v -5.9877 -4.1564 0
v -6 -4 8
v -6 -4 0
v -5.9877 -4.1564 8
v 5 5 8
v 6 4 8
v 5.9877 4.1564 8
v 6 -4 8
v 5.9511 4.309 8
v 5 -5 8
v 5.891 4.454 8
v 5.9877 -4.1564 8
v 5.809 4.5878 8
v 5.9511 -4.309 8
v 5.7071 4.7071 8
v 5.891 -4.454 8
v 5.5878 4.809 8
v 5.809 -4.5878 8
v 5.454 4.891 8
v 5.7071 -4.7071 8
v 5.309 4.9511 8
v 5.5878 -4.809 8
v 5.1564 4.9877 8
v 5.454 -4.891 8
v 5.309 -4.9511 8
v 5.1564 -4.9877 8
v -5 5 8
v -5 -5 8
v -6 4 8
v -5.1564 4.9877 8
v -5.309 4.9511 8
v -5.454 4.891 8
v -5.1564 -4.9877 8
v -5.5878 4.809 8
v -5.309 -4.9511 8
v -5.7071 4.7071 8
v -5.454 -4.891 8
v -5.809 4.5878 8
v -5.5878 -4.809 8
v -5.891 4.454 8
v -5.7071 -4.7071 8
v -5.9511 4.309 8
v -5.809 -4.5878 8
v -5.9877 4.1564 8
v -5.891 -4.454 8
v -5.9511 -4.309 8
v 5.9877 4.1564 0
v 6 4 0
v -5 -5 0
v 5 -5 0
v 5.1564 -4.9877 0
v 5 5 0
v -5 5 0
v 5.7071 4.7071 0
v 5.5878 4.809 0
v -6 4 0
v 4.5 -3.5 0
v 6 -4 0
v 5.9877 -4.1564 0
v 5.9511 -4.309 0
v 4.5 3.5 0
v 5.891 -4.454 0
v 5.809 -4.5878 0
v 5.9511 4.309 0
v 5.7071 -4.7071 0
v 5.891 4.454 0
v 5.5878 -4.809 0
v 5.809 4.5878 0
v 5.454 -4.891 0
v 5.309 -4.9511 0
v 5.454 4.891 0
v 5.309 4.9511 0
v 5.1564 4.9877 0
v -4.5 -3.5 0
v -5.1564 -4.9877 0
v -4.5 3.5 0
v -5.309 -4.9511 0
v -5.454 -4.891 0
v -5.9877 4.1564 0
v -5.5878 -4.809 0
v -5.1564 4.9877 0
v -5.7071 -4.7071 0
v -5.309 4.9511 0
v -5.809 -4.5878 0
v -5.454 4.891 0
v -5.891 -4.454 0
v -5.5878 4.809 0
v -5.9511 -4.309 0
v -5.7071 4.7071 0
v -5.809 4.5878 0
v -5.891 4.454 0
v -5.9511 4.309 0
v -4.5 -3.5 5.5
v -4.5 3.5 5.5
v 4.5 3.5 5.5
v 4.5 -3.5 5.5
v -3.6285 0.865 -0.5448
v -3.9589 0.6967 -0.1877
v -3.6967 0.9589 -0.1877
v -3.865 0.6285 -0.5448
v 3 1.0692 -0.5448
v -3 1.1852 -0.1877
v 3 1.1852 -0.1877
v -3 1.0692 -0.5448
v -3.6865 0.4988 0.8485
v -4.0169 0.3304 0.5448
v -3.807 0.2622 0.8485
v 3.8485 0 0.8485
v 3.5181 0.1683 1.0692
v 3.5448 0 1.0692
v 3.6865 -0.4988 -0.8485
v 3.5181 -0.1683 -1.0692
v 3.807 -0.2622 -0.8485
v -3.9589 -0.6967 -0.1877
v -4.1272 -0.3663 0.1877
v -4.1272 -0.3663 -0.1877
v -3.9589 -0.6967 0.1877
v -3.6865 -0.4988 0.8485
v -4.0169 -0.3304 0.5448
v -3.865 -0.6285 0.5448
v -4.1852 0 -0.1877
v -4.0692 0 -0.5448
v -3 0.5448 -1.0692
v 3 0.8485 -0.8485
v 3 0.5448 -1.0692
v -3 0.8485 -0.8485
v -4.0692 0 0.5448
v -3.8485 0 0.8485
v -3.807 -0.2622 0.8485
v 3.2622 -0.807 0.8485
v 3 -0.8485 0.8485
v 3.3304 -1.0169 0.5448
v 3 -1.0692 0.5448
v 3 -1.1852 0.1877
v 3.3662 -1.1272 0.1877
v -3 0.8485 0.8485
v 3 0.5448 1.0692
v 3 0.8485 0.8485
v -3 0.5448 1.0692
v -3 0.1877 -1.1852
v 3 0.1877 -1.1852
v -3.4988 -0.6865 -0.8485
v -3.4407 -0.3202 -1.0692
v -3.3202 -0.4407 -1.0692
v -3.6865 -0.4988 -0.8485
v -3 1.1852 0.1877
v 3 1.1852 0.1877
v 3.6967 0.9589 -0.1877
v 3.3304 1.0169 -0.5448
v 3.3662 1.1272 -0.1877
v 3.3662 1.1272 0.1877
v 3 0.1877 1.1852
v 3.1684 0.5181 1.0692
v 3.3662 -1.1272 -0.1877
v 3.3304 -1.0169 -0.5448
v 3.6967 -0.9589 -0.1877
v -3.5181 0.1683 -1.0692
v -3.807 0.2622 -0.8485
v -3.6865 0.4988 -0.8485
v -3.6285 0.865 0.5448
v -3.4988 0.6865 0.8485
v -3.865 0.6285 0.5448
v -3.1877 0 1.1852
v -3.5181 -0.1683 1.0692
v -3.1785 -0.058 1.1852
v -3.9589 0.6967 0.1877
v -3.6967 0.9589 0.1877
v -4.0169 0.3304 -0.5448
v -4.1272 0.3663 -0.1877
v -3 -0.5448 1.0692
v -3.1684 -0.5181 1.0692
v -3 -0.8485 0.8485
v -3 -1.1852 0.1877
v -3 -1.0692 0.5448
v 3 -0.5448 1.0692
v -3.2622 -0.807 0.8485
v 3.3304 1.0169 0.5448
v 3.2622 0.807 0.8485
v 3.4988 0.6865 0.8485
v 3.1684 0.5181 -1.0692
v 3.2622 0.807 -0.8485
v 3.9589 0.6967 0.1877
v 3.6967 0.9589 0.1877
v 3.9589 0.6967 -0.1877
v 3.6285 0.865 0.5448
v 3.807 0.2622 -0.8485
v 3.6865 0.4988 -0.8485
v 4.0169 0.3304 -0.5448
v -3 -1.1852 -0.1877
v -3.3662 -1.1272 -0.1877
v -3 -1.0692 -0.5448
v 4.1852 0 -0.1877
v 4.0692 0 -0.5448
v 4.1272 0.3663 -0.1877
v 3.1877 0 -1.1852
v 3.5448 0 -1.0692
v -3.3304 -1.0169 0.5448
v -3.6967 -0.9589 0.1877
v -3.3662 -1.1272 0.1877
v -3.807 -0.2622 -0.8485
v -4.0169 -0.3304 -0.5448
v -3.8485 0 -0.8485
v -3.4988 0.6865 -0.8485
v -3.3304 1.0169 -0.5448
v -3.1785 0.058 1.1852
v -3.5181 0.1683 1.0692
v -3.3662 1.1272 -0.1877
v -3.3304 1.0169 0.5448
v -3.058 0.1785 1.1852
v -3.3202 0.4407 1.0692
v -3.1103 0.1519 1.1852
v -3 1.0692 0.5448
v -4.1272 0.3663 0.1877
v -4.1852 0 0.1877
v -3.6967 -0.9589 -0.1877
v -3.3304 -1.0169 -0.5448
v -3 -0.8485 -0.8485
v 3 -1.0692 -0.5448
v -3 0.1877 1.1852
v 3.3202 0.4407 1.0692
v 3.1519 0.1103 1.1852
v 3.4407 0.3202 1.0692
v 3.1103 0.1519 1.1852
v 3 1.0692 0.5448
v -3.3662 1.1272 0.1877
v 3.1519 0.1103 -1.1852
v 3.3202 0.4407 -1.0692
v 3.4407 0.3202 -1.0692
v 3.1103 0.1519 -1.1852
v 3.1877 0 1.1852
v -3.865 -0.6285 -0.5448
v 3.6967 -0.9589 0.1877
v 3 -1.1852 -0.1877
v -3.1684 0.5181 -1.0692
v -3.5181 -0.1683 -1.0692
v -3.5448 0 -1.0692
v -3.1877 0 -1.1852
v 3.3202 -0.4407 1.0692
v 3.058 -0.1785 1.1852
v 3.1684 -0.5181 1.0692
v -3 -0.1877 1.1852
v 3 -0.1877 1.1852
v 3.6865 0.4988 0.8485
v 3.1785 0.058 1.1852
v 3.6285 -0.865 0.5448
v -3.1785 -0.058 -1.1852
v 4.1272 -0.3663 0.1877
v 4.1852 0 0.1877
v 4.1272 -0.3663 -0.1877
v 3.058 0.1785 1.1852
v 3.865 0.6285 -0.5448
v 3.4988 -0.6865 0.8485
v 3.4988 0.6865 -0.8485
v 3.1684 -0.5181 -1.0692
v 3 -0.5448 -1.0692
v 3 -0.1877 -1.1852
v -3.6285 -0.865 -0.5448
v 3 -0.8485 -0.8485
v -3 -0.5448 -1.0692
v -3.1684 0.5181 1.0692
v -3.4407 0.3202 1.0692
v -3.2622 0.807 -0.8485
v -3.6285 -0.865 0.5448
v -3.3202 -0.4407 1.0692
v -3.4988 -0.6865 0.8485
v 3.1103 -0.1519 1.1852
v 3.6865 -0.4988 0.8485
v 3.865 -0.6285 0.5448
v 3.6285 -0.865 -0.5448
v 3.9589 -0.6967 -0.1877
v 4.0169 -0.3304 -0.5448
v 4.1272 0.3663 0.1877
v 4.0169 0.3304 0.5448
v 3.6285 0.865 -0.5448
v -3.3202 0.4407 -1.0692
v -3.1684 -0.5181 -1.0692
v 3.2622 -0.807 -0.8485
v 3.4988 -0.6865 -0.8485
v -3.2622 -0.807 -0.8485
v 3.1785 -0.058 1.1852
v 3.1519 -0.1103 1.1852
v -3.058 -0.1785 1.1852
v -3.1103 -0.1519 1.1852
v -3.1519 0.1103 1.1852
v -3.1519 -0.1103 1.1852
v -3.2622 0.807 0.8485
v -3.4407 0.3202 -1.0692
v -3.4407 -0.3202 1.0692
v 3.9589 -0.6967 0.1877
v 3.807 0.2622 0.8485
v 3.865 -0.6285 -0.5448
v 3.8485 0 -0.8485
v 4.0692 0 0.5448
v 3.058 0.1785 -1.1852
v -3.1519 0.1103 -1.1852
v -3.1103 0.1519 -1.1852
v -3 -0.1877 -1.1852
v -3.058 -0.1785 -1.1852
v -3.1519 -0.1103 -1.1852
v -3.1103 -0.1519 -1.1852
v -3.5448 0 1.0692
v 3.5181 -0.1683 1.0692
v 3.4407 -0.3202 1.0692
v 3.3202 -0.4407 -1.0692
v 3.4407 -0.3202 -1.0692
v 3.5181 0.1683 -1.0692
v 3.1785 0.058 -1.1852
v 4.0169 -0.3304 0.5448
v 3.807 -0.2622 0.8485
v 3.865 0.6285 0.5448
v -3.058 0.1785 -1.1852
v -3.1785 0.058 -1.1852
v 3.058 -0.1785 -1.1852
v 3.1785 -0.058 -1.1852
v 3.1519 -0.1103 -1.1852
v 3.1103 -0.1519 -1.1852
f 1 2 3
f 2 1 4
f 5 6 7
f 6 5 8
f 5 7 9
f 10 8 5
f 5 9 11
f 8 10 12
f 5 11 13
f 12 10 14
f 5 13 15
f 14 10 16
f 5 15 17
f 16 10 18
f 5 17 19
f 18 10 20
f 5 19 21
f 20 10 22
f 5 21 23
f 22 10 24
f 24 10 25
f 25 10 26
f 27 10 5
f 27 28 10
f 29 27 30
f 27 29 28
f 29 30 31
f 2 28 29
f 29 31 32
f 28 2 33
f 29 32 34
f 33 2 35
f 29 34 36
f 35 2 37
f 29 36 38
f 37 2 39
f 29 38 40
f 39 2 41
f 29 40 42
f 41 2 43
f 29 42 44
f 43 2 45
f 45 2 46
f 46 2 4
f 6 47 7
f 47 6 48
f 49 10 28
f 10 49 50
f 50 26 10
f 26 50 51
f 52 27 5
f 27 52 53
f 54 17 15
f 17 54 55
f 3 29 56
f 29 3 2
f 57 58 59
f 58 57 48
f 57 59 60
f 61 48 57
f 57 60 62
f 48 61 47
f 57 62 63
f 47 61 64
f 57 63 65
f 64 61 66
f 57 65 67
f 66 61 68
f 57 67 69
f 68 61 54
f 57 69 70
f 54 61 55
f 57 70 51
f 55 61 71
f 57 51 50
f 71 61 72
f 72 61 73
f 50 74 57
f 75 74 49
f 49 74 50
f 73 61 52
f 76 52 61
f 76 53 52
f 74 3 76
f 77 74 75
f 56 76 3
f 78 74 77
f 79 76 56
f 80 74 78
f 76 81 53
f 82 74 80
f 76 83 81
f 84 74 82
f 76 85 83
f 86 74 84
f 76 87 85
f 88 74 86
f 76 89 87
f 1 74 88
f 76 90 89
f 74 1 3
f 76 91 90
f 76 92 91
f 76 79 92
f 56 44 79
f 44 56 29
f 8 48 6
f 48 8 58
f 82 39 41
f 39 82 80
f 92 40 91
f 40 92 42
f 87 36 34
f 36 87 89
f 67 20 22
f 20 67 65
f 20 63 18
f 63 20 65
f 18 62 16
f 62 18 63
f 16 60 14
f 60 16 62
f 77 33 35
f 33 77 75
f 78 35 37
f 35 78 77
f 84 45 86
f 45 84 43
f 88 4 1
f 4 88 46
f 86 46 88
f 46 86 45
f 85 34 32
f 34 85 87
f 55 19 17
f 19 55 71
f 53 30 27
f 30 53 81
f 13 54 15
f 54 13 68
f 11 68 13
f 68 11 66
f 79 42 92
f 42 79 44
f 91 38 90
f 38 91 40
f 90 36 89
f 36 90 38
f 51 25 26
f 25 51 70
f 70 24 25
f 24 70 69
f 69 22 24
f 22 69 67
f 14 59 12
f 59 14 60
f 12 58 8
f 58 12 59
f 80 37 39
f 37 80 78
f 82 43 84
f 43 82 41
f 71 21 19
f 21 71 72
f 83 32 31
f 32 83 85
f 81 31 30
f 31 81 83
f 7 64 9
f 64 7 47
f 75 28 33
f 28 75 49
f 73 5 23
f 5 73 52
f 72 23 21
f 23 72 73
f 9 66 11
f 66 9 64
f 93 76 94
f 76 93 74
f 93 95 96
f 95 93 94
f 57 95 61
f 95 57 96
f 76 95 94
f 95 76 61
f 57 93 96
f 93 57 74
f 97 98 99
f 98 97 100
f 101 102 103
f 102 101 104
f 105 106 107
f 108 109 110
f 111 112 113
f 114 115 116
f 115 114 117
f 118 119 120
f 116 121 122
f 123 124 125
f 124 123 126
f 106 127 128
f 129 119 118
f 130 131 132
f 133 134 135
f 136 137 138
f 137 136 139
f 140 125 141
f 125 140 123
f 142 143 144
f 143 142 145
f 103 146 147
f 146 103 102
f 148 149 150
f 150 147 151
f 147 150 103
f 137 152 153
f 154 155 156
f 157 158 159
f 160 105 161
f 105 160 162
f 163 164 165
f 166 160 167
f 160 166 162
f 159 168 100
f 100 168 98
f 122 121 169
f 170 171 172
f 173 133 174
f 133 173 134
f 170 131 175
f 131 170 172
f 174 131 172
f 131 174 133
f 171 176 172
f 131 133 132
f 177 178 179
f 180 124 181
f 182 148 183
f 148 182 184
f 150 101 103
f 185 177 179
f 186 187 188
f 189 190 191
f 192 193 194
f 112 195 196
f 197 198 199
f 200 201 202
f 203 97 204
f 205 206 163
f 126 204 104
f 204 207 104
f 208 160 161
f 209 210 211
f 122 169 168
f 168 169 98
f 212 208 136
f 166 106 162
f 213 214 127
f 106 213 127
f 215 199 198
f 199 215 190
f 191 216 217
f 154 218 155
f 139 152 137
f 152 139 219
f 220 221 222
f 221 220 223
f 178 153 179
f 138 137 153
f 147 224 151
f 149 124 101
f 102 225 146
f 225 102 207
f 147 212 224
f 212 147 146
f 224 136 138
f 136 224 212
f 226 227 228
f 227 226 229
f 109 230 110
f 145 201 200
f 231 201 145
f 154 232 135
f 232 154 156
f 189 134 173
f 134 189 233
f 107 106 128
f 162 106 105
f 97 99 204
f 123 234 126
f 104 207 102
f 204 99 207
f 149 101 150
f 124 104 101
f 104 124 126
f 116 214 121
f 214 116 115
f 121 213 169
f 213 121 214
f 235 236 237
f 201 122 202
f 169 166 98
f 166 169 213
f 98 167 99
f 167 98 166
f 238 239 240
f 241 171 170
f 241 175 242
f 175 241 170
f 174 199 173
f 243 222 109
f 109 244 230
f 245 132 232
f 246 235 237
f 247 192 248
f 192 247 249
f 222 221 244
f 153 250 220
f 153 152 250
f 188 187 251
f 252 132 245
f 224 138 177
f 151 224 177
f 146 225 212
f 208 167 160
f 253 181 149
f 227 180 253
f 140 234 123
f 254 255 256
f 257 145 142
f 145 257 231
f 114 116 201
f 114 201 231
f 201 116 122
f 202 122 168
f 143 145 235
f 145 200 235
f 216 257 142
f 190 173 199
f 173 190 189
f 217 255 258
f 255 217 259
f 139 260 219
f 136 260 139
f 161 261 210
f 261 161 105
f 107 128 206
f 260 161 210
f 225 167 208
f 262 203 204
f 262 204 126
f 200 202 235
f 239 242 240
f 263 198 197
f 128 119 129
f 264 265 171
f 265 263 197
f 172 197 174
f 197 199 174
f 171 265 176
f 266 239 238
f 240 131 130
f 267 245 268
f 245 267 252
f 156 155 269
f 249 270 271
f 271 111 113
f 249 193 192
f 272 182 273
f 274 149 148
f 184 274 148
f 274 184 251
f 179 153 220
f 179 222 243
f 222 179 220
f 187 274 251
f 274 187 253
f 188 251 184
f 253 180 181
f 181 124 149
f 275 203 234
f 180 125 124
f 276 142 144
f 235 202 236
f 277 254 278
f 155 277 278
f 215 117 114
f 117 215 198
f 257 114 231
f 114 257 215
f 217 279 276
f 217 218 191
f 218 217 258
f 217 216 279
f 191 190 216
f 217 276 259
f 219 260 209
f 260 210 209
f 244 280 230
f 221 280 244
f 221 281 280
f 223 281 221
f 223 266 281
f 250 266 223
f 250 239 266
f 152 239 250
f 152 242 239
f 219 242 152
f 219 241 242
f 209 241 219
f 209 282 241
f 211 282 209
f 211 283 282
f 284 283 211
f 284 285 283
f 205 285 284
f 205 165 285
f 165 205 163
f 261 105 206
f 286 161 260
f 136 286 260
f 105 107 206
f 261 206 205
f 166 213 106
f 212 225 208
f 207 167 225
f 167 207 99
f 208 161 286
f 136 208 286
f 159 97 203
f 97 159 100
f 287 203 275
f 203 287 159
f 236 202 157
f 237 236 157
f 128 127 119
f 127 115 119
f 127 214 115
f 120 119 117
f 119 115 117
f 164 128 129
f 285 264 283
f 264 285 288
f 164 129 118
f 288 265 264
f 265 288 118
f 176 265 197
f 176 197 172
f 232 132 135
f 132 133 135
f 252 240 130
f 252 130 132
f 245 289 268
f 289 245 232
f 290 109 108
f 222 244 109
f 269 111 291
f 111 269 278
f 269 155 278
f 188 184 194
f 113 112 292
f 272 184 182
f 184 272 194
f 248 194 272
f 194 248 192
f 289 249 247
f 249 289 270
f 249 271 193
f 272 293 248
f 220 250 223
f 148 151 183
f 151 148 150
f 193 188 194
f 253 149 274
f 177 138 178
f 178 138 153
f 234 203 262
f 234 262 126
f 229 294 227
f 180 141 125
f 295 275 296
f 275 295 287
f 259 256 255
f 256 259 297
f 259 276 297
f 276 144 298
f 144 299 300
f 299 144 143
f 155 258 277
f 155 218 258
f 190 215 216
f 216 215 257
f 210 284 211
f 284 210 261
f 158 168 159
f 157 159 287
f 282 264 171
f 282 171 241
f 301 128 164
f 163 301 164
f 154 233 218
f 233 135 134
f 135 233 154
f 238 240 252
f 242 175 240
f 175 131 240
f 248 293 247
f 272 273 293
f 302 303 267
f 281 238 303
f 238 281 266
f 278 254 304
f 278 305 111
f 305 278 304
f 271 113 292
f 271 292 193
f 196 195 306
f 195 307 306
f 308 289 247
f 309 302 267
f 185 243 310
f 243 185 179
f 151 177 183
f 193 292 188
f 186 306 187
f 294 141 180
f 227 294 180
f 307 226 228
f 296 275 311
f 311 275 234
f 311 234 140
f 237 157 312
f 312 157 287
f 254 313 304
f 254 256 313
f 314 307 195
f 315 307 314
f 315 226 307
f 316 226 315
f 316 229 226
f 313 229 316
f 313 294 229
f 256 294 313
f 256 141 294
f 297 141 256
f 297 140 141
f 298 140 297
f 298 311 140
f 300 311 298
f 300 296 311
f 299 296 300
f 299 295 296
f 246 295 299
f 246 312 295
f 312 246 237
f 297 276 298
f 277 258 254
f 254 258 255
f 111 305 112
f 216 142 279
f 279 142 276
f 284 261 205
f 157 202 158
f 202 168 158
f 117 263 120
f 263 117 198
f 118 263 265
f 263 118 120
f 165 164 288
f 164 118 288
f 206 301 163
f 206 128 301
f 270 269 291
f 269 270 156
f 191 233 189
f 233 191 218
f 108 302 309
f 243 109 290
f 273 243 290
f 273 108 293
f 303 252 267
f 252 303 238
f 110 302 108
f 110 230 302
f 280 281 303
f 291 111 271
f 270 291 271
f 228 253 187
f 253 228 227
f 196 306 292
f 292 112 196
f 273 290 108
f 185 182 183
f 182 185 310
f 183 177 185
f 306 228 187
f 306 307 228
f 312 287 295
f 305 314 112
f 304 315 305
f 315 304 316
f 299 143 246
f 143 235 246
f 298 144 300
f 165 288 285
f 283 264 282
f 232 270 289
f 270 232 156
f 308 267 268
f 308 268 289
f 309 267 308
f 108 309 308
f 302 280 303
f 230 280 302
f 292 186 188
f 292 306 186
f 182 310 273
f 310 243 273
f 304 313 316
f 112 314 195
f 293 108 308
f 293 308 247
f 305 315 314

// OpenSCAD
// =========================================================
// COMPONENT: POGO END CAP — Short-Circuit Prevention Cover
// Revision 1.0
// Created 2026-05-06
//
// Snap-fit cover for the LAST cell in the daisy chain.
// Covers the exposed right-side spring pogo pins to prevent
// accidental short-circuits from metal objects (rings, keys, coins).
// (Audit 6.2)
//
// Print in TPU (flexible, soft — won't scratch, easy snap-on/off).
// Snaps into the right-wall pogo slot of the outer_box.
// =========================================================

// --- 1. PARAMETERS ---

// Must match outer_box.scad pogo slot dimensions
pogo_slot_w      = 10;     // Width of pogo slot in outer_box wall
pogo_slot_h      = 8;      // Height of pogo slot
wall_thickness   = 4;      // outer_box wall thickness

// Cap body
cap_w            = pogo_slot_w + 2;  // 12mm — slightly wider for grip
cap_h            = pogo_slot_h + 2;  // 10mm — slightly taller for grip
cap_depth        = 8;                // How deep the cap inserts into slot
cap_wall         = 1.5;             // Cap shell thickness

// Snap lip — catches on inner edge of pogo slot
snap_lip_h       = 0.5;   // Overhang height
snap_lip_depth   = 1.0;   // How far the lip extends inward

// Rounded edges for comfort
cap_fillet       = 1.0;

$fn = 40;

// --- 2. MODULES ---

module cap_outer() {
    // Main body — rounded rectangle
    hull() {
        for(sx = [-1, 1]) for(sy = [-1, 1]) {
            translate([sx * (cap_w/2 - cap_fillet),
                       sy * (cap_h/2 - cap_fillet), 0])
                cylinder(r=cap_fillet, h=cap_depth);
        }
    }
}

module cap_inner() {
    // Hollow out interior (leave cap_wall thickness shell)
    inner_w = cap_w - 2 * cap_wall;
    inner_h = cap_h - 2 * cap_wall;
    translate([0, 0, cap_wall])
        cube([inner_w, inner_h, cap_depth], center=true);
}

module snap_lips() {
    // Two snap lips on ±Y sides — catch on pogo slot edge
    for(sy = [-1, 1]) {
        // Lip is a thin ridge near the insertion end
        translate([0, sy * (pogo_slot_h/2 + snap_lip_h/2),
                   cap_depth - snap_lip_depth - 1])
            cube([pogo_slot_w - 2, snap_lip_h, snap_lip_depth], center=true);
    }
}

module end_marker() {
    // Raised ridge on the EXPOSED (outward, -Z) face so a blind user feels "end of chain".
    // The soft TPU + this bar together unambiguously mark the last cell's tail.
    hull() {
        translate([-3, 0, 0]) sphere(d=2.4, $fn=20);
        translate([ 3, 0, 0]) sphere(d=2.4, $fn=20);
    }
}

module pogo_end_cap() {
    union() {
        difference() {
            cap_outer();
            cap_inner();
        }
        snap_lips();
        end_marker();
    }
}

// --- 3. GENERATE ---

pogo_end_cap();

// --- 4. NOTES ---
// Material: TPU (Shore 95A) — flexible for easy snap-on/off
// Print: flat on build plate (cap_depth along Z)
// Usage: snap onto right-side pogo slot of last cell in chain
// Removal: squeeze sides gently, pull outward
